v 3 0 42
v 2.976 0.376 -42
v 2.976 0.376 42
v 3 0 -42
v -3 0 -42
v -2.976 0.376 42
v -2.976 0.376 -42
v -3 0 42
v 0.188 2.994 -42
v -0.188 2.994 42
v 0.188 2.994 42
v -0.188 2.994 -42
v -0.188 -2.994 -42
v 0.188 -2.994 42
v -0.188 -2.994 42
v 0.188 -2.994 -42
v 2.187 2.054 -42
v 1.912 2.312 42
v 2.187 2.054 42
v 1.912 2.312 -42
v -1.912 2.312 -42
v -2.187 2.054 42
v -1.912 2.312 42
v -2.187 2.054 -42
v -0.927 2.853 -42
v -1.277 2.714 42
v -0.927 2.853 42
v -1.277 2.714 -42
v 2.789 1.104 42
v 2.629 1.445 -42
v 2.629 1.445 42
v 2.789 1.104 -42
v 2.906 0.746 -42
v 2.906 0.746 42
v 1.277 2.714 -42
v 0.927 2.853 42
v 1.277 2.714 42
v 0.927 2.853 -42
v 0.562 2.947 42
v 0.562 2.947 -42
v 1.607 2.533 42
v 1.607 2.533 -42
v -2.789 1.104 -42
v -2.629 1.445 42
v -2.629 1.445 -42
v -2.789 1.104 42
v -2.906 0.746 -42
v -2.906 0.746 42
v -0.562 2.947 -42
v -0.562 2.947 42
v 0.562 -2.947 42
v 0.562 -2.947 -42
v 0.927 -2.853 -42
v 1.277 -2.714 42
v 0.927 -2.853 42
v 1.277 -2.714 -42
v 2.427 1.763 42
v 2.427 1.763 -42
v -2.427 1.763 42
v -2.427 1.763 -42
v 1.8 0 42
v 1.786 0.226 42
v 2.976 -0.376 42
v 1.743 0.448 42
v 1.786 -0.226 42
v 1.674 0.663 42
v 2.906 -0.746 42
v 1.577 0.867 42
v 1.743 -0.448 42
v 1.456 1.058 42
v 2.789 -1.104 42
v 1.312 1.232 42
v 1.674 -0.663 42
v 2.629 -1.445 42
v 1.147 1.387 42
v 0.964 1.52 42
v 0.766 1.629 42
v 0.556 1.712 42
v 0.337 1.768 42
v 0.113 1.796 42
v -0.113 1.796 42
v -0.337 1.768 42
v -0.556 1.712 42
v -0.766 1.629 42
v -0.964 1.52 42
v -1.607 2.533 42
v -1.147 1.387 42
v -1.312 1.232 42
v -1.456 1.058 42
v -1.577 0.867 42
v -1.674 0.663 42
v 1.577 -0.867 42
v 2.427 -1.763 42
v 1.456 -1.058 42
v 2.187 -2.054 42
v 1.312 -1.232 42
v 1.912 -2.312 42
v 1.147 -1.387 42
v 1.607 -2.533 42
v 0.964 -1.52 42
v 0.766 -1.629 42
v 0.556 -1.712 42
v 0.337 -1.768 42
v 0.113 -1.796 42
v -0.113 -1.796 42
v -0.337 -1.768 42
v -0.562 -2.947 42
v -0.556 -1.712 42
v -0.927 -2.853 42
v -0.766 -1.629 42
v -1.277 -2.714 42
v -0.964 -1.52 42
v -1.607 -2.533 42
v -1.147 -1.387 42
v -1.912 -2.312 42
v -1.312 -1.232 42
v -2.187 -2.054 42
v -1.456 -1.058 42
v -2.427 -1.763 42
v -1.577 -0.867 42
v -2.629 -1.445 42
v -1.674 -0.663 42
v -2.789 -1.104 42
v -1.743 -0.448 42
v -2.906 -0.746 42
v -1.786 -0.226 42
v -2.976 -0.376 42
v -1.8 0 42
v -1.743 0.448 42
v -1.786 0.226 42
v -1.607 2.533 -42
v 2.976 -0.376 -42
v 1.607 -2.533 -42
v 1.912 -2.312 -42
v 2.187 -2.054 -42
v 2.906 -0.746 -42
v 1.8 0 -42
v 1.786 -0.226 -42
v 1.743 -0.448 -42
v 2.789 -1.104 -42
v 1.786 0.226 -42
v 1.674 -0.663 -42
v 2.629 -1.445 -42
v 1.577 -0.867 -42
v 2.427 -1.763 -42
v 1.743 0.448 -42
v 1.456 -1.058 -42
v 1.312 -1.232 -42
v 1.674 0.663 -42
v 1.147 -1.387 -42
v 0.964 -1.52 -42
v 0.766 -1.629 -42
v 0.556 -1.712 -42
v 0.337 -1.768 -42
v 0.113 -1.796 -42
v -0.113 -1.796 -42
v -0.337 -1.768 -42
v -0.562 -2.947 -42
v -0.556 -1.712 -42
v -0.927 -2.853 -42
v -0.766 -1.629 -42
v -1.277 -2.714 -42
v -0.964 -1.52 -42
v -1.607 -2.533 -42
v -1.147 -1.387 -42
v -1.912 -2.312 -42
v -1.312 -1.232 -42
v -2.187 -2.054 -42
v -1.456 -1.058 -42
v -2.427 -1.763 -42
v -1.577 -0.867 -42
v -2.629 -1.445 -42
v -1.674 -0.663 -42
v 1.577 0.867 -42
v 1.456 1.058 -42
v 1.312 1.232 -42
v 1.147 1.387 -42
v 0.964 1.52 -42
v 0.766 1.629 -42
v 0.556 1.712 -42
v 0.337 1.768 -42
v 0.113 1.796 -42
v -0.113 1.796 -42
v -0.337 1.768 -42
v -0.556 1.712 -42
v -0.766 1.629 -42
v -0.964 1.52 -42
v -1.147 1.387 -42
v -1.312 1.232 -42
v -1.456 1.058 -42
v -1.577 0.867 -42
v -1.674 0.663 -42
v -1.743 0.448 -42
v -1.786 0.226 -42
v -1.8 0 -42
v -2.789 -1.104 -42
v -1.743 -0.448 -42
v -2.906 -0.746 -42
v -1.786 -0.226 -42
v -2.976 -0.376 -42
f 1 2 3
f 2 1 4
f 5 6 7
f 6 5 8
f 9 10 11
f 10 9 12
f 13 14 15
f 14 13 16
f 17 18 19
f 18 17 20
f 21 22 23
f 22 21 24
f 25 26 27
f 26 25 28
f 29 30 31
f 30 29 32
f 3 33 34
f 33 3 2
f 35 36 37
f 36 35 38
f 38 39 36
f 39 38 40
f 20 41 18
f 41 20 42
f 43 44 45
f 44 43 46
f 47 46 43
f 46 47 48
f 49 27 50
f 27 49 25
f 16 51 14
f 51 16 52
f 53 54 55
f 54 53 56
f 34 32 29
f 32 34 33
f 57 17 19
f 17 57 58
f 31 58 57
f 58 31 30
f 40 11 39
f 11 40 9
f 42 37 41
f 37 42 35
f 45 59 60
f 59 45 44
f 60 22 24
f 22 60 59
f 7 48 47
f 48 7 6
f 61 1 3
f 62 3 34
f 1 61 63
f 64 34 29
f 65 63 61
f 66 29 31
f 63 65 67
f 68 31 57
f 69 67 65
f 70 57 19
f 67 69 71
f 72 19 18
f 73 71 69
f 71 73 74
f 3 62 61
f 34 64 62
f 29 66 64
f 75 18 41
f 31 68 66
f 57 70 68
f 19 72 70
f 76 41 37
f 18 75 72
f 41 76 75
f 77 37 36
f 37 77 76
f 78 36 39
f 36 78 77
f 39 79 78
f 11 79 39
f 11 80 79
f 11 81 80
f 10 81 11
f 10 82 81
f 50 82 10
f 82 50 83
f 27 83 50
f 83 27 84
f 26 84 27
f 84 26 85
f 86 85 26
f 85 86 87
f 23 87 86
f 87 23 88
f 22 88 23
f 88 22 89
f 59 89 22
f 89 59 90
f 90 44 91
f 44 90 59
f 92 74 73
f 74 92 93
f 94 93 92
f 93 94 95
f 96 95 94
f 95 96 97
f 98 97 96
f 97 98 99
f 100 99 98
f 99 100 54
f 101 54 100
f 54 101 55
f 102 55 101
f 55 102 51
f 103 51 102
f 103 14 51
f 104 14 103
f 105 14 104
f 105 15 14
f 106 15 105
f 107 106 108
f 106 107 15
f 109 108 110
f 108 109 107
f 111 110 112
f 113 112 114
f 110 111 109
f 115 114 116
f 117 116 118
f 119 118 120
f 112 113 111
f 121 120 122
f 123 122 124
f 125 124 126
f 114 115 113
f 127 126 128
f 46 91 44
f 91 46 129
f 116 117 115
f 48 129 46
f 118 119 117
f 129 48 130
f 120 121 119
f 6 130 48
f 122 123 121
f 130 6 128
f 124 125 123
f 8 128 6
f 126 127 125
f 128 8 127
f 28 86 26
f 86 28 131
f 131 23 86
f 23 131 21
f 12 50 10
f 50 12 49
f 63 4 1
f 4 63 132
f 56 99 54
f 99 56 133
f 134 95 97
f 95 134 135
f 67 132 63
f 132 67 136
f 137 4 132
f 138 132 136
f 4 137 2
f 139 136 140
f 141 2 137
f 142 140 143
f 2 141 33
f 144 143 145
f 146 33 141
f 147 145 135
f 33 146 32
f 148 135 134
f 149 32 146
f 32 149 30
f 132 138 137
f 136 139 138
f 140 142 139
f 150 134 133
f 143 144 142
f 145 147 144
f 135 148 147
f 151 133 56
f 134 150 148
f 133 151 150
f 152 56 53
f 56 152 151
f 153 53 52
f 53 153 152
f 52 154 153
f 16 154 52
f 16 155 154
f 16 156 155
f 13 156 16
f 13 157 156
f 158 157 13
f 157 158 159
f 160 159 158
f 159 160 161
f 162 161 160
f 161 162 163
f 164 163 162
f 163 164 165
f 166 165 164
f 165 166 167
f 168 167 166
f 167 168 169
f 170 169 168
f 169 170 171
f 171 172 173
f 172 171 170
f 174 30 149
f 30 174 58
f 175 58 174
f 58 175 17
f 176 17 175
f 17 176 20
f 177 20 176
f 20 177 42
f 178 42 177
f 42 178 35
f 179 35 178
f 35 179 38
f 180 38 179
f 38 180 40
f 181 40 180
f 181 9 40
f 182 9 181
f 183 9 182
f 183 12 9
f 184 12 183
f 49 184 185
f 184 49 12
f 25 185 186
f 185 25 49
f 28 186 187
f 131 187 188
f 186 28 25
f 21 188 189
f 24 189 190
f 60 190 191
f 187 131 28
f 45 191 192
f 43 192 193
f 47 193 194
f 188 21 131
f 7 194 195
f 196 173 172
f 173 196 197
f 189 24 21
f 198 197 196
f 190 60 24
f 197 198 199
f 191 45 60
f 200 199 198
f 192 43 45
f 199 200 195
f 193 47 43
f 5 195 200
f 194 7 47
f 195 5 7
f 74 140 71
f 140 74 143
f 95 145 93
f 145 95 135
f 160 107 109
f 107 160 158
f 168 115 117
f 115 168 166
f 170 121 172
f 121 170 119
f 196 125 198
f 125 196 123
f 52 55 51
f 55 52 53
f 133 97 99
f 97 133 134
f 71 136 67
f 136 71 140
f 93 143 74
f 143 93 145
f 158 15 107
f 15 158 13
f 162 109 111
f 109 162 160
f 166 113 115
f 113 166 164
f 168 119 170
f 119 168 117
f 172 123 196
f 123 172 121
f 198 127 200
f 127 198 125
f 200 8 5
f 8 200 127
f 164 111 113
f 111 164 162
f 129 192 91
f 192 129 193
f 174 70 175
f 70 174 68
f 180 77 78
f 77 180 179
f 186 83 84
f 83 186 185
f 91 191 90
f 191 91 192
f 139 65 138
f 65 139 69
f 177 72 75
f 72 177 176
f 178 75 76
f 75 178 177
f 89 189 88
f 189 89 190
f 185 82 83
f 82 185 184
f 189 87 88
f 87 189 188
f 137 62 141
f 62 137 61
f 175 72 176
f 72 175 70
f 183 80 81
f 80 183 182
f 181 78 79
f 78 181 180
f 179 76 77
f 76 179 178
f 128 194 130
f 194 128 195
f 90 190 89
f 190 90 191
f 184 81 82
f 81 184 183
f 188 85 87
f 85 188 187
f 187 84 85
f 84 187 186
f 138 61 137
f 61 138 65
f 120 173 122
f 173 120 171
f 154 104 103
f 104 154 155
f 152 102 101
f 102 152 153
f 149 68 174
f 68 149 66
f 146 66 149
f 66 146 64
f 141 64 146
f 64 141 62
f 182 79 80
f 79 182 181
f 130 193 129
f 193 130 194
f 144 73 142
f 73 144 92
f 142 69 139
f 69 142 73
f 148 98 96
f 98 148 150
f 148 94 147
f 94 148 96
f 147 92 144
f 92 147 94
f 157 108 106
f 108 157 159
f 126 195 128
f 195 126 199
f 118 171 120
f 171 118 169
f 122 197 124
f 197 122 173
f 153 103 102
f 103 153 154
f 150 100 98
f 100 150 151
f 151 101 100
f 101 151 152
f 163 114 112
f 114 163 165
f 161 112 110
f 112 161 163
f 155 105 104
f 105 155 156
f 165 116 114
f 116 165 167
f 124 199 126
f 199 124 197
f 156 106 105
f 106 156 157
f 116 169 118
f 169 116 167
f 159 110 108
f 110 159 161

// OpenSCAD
$fn = 50;


difference() {
	union() {
		translate(v = [0, 0, -42.0000000000]) {
			cylinder(h = 84, r = 3.0000000000);
		}
	}
	union() {
		translate(v = [0, 0, -100.0000000000]) {
			cylinder(h = 200, r = 1.8000000000);
		}
	}
}
